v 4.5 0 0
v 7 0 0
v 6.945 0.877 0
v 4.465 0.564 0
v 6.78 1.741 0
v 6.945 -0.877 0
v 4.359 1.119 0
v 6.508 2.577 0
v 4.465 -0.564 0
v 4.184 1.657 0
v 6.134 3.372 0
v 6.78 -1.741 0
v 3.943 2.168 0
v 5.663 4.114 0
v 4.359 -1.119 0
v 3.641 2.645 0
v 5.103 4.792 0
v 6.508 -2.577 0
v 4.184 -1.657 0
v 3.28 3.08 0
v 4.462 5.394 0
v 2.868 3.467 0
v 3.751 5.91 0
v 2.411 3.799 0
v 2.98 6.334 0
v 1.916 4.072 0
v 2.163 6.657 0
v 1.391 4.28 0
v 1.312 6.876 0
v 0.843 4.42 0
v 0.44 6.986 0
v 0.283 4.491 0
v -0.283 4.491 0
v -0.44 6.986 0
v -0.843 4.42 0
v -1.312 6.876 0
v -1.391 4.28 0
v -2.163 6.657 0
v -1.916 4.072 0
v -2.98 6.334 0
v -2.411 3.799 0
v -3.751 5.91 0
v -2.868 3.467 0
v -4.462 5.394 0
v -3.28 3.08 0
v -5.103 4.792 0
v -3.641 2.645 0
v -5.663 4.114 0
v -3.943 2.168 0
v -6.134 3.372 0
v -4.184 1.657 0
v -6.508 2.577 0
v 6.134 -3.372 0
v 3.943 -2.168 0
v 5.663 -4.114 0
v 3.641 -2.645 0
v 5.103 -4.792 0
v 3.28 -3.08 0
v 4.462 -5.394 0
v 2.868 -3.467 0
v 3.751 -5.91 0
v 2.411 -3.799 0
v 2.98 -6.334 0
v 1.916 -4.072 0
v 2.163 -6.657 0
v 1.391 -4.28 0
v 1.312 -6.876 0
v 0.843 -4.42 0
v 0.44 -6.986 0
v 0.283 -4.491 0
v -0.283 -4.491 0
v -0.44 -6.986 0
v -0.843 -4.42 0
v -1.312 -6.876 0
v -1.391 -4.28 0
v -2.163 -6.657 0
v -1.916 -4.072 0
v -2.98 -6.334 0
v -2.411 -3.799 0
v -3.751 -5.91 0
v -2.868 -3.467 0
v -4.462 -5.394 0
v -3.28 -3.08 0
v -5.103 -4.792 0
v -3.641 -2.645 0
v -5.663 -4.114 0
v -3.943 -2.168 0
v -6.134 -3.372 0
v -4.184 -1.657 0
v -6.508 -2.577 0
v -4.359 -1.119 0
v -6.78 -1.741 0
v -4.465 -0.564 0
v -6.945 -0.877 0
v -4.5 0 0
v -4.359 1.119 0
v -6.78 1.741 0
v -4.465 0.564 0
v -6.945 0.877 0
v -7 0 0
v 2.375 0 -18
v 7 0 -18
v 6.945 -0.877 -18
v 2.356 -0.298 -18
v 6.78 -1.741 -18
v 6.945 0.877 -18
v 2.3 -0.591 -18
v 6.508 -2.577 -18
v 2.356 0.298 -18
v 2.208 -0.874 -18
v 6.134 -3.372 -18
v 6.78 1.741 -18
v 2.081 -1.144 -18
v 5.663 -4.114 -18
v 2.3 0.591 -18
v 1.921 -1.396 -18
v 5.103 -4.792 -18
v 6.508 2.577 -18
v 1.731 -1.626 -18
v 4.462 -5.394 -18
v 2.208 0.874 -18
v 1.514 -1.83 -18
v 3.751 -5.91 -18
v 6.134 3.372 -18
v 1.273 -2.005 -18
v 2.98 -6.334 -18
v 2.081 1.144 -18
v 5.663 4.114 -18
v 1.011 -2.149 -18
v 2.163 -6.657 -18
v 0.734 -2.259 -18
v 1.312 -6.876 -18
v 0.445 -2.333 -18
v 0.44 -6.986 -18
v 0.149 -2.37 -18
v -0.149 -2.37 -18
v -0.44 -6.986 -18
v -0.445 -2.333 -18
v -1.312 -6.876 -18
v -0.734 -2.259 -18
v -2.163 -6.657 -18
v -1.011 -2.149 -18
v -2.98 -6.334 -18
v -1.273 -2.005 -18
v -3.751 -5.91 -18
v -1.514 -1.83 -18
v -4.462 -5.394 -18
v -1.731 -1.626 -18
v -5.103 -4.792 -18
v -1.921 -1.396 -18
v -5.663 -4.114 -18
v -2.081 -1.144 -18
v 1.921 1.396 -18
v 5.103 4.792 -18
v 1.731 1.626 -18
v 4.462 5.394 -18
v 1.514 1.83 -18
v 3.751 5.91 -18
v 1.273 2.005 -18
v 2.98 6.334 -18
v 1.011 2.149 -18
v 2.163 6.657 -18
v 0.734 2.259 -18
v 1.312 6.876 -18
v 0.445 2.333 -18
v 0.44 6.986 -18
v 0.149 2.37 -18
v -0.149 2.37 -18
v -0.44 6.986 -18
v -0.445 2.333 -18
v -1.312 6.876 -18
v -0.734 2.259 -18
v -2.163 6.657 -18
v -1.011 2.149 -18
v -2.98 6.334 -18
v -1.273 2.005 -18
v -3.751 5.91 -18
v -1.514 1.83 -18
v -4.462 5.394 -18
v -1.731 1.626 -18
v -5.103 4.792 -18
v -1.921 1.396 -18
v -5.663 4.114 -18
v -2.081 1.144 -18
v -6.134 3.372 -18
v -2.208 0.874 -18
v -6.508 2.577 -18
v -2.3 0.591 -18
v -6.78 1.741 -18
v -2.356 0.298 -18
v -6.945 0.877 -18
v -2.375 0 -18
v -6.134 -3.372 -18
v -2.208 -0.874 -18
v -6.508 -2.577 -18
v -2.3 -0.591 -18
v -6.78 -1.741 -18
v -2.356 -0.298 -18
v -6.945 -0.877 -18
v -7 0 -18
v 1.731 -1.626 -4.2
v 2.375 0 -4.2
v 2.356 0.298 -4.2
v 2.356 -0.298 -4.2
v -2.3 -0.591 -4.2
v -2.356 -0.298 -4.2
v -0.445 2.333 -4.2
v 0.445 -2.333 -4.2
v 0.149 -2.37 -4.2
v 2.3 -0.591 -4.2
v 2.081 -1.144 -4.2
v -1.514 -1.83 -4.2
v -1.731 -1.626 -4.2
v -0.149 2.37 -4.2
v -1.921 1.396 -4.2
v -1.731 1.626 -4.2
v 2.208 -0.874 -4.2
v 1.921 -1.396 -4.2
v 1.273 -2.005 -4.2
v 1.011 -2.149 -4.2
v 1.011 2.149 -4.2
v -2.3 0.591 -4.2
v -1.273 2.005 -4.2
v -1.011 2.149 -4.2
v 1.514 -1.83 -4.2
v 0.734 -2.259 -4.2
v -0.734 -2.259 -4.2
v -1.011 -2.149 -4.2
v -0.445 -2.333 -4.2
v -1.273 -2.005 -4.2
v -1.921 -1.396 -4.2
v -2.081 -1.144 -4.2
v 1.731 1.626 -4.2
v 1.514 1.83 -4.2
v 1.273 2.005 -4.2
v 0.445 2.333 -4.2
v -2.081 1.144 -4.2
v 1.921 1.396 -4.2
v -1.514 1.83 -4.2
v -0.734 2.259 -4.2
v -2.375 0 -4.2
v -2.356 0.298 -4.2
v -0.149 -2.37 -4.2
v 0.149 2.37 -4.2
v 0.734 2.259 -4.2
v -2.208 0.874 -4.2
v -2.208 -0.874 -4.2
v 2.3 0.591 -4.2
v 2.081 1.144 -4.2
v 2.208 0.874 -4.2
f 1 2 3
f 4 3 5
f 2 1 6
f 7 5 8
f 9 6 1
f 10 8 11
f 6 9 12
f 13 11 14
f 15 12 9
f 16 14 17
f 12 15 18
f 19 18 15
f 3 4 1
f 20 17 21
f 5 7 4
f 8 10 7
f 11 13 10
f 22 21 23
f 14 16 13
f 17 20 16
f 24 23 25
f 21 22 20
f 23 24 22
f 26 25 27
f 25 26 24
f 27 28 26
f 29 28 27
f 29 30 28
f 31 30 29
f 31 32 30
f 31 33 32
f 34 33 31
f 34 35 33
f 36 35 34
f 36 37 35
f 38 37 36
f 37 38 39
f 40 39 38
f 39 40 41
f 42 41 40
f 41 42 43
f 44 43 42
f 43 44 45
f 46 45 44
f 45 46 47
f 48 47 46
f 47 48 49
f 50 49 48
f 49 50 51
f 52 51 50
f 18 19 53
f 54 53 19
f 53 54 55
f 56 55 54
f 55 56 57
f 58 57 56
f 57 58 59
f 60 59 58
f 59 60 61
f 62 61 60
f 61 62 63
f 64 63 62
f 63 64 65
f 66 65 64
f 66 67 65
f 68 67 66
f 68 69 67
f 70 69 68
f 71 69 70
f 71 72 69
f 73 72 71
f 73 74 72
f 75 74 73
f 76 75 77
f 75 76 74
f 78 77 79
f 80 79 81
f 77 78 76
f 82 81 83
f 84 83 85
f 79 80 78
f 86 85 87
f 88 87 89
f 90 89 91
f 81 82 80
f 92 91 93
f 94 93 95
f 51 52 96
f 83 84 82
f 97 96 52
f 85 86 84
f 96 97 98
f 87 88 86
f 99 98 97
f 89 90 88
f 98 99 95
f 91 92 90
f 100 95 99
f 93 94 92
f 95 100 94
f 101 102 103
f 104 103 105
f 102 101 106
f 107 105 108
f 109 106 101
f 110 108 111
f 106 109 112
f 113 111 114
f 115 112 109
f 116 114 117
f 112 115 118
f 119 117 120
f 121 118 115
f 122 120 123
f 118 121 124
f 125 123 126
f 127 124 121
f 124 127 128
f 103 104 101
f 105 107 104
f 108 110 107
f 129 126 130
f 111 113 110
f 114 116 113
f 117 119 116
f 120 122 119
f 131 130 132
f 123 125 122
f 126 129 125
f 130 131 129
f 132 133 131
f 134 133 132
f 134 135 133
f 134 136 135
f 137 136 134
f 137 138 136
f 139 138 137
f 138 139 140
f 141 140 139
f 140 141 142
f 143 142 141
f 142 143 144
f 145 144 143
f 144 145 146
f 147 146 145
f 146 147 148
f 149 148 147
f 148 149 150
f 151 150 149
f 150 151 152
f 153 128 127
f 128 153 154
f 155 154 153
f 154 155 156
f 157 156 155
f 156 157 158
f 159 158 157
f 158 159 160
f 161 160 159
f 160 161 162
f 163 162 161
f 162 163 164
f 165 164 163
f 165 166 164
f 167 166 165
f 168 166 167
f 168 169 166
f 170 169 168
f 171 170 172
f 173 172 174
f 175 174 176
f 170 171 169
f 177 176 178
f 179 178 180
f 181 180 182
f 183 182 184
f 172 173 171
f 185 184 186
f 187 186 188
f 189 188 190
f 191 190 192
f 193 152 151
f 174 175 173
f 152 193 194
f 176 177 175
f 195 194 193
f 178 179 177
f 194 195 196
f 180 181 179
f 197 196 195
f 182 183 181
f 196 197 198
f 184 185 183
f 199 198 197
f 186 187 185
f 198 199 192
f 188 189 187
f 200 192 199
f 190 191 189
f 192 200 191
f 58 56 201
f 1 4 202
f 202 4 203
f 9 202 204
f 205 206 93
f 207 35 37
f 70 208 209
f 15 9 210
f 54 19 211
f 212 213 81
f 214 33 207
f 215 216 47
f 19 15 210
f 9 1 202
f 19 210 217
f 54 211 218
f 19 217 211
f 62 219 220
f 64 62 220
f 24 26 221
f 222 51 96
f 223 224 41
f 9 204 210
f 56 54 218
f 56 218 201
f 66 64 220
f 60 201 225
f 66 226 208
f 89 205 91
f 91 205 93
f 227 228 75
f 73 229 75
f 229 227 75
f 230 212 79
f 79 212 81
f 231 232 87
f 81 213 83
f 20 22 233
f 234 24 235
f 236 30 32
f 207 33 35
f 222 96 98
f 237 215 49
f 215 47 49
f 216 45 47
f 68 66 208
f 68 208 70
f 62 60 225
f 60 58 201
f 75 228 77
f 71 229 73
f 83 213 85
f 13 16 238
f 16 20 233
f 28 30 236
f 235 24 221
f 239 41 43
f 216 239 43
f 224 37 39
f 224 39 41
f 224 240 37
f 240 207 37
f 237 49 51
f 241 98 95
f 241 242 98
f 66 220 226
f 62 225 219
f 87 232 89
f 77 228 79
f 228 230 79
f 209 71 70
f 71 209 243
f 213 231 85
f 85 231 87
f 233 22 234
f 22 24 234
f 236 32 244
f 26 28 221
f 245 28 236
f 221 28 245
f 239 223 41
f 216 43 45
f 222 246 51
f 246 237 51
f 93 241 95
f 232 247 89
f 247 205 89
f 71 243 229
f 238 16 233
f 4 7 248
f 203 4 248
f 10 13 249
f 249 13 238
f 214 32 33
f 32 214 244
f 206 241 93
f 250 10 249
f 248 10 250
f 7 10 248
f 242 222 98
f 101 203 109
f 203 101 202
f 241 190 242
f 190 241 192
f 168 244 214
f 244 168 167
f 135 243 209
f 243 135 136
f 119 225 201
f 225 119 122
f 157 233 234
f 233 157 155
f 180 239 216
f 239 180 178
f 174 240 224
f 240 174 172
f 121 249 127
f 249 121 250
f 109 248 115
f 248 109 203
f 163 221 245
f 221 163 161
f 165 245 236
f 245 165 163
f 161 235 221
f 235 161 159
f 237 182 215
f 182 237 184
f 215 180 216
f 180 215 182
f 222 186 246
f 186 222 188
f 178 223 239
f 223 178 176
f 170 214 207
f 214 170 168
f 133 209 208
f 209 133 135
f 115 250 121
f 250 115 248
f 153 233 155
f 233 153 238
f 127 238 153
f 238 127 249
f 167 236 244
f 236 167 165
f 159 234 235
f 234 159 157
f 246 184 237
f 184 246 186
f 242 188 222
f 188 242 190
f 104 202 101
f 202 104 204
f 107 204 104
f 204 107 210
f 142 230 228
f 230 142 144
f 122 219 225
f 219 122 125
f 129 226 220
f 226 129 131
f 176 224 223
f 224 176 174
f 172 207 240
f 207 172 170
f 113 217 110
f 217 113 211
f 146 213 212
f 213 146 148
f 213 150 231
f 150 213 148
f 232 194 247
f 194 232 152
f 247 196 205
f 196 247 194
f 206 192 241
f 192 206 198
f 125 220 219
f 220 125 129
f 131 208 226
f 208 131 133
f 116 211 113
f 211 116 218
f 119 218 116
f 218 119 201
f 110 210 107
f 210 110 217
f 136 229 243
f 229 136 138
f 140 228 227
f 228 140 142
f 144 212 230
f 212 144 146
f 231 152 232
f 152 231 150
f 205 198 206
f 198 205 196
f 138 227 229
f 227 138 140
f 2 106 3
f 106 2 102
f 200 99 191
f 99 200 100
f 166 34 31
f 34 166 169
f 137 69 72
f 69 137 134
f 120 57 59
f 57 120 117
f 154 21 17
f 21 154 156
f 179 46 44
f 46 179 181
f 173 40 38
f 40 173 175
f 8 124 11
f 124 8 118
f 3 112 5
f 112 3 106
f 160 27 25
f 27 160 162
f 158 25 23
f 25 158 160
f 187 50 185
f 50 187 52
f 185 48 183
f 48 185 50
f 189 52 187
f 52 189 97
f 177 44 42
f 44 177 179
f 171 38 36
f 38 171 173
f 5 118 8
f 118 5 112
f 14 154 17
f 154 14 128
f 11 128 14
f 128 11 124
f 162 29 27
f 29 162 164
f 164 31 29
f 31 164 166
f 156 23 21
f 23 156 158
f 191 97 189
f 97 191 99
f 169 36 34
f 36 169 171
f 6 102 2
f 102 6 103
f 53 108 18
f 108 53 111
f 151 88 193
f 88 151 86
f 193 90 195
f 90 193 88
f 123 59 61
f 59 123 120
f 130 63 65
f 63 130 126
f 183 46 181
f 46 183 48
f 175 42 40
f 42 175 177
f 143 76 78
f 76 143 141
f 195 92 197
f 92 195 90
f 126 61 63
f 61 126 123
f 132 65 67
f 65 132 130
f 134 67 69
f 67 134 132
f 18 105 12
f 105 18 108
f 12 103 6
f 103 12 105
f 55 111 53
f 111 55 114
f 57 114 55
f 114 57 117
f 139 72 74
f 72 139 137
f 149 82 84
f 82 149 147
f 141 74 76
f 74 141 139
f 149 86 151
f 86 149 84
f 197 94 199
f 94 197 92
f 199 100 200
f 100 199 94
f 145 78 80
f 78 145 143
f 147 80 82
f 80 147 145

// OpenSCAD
$fn = 50;


difference() {
	union() {
		translate(v = [0, 0, -18.0000000000]) {
			cylinder(h = 18, r = 7.0000000000);
		}
	}
	union() {
		translate(v = [0, 0, 0]) {
			rotate(a = [0, 0, 0]) {
				difference() {
					union() {
						#translate(v = [0, 0, -18.0000000000]) {
							cylinder(h = 18, r = 2.2500000000);
						}
						#translate(v = [0, 0, -4.2000000000]) {
							cylinder(h = 4.2000000000, r = 7.0000000000, r1 = 2.3750000000, r2 = 4.5000000000);
						}
						#translate(v = [0, 0, -18.0000000000]) {
							cylinder(h = 18, r = 2.3750000000);
						}
						#translate(v = [0, 0, -18.0000000000]) {
							cylinder(h = 18, r = 2.2500000000);
						}
					}
					union();
				}
			}
		}
	}
}
